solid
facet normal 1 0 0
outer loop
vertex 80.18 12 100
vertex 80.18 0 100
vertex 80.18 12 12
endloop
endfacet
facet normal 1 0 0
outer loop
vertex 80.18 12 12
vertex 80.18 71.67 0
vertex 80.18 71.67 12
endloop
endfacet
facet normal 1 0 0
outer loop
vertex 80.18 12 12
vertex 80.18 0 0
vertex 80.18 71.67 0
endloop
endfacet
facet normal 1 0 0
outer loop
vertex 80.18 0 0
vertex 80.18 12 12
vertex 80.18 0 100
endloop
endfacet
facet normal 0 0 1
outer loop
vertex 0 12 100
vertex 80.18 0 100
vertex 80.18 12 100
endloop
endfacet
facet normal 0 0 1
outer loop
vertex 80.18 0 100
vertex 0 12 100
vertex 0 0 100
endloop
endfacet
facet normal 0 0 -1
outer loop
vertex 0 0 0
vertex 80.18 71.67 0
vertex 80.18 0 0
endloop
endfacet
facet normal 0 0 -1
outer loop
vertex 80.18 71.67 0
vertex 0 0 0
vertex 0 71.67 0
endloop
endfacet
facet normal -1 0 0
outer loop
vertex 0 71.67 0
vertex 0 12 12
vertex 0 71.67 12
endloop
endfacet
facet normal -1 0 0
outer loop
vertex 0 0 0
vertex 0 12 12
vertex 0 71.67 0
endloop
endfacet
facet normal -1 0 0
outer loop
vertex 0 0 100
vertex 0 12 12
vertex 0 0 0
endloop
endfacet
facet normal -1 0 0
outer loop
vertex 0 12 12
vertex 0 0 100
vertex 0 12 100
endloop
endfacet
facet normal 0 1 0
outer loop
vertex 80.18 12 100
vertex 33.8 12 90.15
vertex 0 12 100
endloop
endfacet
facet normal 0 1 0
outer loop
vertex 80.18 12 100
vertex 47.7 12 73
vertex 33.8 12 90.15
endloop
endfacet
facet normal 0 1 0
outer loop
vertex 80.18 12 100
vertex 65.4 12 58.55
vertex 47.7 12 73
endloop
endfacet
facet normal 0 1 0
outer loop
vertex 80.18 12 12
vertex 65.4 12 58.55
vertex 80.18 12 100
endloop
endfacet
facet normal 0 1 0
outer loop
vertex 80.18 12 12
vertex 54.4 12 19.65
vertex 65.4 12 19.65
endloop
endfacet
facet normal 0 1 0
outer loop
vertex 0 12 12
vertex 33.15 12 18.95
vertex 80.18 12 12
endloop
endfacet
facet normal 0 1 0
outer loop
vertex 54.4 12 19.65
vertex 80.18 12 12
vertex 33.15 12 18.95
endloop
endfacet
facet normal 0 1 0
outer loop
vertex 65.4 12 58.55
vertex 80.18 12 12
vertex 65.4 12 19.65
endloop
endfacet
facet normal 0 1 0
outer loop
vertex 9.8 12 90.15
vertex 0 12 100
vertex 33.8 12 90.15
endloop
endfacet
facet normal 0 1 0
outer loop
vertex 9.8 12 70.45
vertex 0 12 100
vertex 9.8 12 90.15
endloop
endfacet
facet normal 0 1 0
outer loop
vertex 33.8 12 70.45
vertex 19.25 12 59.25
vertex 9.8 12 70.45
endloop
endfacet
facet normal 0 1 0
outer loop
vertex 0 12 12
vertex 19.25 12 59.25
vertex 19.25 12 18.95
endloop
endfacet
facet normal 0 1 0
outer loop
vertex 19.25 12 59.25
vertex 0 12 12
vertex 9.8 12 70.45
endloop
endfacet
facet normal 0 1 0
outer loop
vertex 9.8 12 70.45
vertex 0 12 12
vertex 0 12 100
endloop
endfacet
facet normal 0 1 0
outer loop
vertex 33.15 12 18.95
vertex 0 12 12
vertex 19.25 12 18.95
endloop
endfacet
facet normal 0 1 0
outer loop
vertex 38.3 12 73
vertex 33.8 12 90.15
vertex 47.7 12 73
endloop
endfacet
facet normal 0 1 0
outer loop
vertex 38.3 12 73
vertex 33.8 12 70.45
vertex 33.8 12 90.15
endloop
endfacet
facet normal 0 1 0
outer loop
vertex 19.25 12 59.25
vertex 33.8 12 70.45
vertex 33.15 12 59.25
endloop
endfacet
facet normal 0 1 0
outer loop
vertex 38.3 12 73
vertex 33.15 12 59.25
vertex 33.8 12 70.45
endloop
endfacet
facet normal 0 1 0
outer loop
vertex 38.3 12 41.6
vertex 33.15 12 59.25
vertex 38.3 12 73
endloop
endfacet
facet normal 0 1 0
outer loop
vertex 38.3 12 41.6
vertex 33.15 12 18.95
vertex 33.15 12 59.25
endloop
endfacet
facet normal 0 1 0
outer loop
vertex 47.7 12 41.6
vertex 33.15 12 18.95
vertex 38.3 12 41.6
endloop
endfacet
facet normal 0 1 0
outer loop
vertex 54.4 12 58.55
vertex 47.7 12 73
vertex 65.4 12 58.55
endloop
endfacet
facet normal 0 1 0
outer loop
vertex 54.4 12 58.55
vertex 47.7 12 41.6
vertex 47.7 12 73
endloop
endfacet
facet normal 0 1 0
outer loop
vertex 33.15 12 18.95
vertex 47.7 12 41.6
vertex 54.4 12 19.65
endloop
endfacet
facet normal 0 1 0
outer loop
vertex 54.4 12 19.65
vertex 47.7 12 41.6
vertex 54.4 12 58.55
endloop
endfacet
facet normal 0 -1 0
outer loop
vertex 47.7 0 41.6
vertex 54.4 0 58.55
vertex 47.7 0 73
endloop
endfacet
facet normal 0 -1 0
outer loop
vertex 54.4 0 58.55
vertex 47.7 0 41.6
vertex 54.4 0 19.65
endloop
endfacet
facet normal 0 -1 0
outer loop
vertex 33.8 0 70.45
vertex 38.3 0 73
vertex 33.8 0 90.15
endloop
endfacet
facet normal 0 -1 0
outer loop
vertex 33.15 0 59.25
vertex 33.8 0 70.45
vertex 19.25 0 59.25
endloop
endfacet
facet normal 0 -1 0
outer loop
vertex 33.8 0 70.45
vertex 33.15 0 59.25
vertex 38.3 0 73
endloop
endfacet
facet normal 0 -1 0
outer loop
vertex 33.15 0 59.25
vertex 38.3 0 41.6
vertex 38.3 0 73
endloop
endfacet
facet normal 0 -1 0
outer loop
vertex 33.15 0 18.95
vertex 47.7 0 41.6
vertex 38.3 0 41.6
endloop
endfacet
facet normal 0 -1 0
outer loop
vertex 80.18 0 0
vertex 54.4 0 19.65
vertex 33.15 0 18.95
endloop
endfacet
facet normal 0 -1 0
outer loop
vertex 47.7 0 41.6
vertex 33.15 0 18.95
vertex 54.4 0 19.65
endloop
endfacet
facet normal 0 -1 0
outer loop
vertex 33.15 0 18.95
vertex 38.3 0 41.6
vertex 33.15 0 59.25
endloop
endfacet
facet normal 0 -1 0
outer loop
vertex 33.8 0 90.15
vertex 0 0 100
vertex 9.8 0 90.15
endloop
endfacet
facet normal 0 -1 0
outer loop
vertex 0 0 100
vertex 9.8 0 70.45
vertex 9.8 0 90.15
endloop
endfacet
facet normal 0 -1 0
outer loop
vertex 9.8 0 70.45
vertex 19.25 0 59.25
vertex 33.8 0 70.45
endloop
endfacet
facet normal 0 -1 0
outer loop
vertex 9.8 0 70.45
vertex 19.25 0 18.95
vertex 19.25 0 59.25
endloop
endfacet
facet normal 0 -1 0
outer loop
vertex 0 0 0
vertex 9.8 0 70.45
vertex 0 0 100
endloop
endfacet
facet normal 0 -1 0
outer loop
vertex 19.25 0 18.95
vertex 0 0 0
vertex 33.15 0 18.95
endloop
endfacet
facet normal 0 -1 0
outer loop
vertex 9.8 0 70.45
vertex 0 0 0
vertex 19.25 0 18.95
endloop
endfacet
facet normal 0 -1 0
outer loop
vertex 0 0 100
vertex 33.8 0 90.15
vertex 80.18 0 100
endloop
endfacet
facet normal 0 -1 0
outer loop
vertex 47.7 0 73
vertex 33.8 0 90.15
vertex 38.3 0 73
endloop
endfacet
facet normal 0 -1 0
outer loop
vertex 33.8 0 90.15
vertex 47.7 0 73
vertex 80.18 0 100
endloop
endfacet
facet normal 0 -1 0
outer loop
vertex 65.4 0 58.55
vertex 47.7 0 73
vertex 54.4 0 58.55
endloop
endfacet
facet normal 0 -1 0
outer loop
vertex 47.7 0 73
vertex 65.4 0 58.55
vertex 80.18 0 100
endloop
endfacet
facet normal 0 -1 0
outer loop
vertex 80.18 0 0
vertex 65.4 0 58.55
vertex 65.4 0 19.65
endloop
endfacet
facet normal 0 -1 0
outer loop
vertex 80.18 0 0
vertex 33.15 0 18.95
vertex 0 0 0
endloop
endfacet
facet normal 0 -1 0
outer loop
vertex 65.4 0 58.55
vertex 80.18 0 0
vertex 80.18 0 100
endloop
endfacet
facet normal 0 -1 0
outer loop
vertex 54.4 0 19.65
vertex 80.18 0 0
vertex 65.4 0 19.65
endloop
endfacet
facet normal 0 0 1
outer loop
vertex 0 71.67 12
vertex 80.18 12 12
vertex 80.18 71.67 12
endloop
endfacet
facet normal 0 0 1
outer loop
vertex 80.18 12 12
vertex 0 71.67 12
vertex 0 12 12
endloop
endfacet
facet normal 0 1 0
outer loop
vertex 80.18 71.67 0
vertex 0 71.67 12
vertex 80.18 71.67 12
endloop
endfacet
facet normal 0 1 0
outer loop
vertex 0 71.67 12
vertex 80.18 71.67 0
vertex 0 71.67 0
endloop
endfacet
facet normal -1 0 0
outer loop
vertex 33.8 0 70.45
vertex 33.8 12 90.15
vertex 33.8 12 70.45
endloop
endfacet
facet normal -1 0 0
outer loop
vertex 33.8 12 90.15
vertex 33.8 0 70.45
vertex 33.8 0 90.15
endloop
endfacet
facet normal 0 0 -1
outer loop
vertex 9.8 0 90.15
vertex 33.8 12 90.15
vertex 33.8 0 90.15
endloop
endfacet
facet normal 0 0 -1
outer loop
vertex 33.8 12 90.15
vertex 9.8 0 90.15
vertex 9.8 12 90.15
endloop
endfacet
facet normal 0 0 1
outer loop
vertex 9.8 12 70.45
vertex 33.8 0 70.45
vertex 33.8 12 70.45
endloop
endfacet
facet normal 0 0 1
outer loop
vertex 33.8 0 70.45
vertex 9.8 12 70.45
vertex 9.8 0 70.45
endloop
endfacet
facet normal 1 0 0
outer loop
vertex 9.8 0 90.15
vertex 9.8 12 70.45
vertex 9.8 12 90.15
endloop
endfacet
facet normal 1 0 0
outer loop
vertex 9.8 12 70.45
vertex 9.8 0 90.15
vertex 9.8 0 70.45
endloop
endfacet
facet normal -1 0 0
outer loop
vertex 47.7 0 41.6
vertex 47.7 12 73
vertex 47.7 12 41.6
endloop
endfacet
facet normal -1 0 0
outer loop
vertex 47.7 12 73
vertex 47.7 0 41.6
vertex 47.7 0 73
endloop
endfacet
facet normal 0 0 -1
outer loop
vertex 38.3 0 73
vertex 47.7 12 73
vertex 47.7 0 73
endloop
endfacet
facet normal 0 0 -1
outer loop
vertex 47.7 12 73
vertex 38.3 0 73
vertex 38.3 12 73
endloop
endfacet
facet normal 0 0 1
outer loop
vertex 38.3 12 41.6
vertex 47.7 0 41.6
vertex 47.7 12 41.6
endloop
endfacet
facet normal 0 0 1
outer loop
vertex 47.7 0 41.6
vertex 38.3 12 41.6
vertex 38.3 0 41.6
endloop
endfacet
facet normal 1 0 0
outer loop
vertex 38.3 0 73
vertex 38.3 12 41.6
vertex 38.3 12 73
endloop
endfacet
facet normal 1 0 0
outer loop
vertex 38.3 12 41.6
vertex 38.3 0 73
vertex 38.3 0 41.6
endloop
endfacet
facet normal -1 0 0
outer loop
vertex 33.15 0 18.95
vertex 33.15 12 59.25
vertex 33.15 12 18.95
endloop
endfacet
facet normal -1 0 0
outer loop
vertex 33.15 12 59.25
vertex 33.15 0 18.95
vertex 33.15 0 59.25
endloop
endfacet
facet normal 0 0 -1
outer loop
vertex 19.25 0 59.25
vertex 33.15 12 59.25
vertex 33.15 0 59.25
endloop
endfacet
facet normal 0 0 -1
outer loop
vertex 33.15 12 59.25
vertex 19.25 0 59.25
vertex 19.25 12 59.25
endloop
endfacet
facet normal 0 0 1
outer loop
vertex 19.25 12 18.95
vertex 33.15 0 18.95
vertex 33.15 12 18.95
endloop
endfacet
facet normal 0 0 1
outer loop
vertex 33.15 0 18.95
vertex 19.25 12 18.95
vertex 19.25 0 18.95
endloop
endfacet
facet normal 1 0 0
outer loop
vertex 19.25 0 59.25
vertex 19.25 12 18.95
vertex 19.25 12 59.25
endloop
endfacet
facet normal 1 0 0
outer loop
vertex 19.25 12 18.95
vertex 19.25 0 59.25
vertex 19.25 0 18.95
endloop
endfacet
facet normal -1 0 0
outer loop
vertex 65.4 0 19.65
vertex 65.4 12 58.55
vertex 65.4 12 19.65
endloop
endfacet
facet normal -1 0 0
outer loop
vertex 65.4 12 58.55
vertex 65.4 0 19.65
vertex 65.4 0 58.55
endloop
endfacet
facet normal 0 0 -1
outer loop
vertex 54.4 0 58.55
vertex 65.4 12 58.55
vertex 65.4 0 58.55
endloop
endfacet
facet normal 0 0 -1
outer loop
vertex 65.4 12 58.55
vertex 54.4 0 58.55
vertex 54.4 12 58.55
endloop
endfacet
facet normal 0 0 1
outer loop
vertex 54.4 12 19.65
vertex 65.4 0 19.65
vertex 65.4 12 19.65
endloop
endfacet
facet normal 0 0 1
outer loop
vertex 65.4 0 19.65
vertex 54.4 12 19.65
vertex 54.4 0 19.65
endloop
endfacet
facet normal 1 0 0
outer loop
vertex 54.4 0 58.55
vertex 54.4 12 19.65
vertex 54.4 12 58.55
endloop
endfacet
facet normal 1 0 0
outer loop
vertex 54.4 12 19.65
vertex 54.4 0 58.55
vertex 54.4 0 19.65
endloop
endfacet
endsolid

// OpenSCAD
/* doodle-meta {"version":1,"parameters":{"width":{"label":"Overall width","description":"Changes the body width","unit":"mm","feature":"body_width"},"depth":{"label":"Overall depth","description":"Changes the base depth","unit":"mm","feature":"body_depth"},"height":{"label":"Overall height","description":"Changes the back height","unit":"mm","feature":"body_height"},"back_thickness":{"label":"Back thickness","description":"Thickness of the vertical back wall","unit":"mm","feature":"back_thickness"},"base_thickness":{"label":"Base thickness","description":"Thickness of the horizontal base","unit":"mm","feature":"base_thickness"}},"features":{"body_width":{"kind":"dimension","axis":"x","label":"Overall width"},"body_depth":{"kind":"dimension","axis":"y","label":"Overall depth"},"body_height":{"kind":"dimension","axis":"z","label":"Overall height"},"back_thickness":{"kind":"dimension","axis":"y","label":"Back thickness"},"base_thickness":{"kind":"dimension","axis":"z","label":"Base thickness"}}} */

// Top-level parameters (user-editable)
width = 80.18;
depth = 71.67;
height = 100.0;
back_thickness = 12.0;
base_thickness = 12.0;

// Derived sizes (not user-editable)
cutout_w1 = 24.0;
cutout_h1 = 19.7;
cutout_cx1 = 21.8;
cutout_cz1 = 80.3;

cutout_w2 = 9.4;
cutout_h2 = 31.4;
cutout_cx2 = 43.0;
cutout_cz2 = 57.3;

cutout_w3 = 13.9;
cutout_h3 = 40.3;
cutout_cx3 = 26.2;
cutout_cz3 = 39.1;

cutout_w4 = 11.0;
cutout_h4 = 38.9;
cutout_cx4 = 59.9;
cutout_cz4 = 39.1;

eps = 0.1;

// Main design
difference() {
    // Positive body: L-shape
    union() {
        // Vertical back wall (at Y=0 to Y=back_thickness)
        cube([width, back_thickness, height]);
        // Horizontal base (at Z=0 to Z=base_thickness, extending to Y=depth)
        cube([width, depth, base_thickness]);
    }
    
    // Subtractive cutters for through-holes in the back wall (cut along Y)
    // Cutout 1: Upper-left
    translate([cutout_cx1, depth/2, cutout_cz1])
        cube([cutout_w1, depth + 2*eps, cutout_h1], center=true);
            
    // Cutout 2: Center
    translate([cutout_cx2, depth/2, cutout_cz2])
        cube([cutout_w2, depth + 2*eps, cutout_h2], center=true);
            
    // Cutout 3: Lower-left
    translate([cutout_cx3, depth/2, cutout_cz3])
        cube([cutout_w3, depth + 2*eps, cutout_h3], center=true);
            
    // Cutout 4: Lower-right
    translate([cutout_cx4, depth/2, cutout_cz4])
        cube([cutout_w4, depth + 2*eps, cutout_h4], center=true);
}
